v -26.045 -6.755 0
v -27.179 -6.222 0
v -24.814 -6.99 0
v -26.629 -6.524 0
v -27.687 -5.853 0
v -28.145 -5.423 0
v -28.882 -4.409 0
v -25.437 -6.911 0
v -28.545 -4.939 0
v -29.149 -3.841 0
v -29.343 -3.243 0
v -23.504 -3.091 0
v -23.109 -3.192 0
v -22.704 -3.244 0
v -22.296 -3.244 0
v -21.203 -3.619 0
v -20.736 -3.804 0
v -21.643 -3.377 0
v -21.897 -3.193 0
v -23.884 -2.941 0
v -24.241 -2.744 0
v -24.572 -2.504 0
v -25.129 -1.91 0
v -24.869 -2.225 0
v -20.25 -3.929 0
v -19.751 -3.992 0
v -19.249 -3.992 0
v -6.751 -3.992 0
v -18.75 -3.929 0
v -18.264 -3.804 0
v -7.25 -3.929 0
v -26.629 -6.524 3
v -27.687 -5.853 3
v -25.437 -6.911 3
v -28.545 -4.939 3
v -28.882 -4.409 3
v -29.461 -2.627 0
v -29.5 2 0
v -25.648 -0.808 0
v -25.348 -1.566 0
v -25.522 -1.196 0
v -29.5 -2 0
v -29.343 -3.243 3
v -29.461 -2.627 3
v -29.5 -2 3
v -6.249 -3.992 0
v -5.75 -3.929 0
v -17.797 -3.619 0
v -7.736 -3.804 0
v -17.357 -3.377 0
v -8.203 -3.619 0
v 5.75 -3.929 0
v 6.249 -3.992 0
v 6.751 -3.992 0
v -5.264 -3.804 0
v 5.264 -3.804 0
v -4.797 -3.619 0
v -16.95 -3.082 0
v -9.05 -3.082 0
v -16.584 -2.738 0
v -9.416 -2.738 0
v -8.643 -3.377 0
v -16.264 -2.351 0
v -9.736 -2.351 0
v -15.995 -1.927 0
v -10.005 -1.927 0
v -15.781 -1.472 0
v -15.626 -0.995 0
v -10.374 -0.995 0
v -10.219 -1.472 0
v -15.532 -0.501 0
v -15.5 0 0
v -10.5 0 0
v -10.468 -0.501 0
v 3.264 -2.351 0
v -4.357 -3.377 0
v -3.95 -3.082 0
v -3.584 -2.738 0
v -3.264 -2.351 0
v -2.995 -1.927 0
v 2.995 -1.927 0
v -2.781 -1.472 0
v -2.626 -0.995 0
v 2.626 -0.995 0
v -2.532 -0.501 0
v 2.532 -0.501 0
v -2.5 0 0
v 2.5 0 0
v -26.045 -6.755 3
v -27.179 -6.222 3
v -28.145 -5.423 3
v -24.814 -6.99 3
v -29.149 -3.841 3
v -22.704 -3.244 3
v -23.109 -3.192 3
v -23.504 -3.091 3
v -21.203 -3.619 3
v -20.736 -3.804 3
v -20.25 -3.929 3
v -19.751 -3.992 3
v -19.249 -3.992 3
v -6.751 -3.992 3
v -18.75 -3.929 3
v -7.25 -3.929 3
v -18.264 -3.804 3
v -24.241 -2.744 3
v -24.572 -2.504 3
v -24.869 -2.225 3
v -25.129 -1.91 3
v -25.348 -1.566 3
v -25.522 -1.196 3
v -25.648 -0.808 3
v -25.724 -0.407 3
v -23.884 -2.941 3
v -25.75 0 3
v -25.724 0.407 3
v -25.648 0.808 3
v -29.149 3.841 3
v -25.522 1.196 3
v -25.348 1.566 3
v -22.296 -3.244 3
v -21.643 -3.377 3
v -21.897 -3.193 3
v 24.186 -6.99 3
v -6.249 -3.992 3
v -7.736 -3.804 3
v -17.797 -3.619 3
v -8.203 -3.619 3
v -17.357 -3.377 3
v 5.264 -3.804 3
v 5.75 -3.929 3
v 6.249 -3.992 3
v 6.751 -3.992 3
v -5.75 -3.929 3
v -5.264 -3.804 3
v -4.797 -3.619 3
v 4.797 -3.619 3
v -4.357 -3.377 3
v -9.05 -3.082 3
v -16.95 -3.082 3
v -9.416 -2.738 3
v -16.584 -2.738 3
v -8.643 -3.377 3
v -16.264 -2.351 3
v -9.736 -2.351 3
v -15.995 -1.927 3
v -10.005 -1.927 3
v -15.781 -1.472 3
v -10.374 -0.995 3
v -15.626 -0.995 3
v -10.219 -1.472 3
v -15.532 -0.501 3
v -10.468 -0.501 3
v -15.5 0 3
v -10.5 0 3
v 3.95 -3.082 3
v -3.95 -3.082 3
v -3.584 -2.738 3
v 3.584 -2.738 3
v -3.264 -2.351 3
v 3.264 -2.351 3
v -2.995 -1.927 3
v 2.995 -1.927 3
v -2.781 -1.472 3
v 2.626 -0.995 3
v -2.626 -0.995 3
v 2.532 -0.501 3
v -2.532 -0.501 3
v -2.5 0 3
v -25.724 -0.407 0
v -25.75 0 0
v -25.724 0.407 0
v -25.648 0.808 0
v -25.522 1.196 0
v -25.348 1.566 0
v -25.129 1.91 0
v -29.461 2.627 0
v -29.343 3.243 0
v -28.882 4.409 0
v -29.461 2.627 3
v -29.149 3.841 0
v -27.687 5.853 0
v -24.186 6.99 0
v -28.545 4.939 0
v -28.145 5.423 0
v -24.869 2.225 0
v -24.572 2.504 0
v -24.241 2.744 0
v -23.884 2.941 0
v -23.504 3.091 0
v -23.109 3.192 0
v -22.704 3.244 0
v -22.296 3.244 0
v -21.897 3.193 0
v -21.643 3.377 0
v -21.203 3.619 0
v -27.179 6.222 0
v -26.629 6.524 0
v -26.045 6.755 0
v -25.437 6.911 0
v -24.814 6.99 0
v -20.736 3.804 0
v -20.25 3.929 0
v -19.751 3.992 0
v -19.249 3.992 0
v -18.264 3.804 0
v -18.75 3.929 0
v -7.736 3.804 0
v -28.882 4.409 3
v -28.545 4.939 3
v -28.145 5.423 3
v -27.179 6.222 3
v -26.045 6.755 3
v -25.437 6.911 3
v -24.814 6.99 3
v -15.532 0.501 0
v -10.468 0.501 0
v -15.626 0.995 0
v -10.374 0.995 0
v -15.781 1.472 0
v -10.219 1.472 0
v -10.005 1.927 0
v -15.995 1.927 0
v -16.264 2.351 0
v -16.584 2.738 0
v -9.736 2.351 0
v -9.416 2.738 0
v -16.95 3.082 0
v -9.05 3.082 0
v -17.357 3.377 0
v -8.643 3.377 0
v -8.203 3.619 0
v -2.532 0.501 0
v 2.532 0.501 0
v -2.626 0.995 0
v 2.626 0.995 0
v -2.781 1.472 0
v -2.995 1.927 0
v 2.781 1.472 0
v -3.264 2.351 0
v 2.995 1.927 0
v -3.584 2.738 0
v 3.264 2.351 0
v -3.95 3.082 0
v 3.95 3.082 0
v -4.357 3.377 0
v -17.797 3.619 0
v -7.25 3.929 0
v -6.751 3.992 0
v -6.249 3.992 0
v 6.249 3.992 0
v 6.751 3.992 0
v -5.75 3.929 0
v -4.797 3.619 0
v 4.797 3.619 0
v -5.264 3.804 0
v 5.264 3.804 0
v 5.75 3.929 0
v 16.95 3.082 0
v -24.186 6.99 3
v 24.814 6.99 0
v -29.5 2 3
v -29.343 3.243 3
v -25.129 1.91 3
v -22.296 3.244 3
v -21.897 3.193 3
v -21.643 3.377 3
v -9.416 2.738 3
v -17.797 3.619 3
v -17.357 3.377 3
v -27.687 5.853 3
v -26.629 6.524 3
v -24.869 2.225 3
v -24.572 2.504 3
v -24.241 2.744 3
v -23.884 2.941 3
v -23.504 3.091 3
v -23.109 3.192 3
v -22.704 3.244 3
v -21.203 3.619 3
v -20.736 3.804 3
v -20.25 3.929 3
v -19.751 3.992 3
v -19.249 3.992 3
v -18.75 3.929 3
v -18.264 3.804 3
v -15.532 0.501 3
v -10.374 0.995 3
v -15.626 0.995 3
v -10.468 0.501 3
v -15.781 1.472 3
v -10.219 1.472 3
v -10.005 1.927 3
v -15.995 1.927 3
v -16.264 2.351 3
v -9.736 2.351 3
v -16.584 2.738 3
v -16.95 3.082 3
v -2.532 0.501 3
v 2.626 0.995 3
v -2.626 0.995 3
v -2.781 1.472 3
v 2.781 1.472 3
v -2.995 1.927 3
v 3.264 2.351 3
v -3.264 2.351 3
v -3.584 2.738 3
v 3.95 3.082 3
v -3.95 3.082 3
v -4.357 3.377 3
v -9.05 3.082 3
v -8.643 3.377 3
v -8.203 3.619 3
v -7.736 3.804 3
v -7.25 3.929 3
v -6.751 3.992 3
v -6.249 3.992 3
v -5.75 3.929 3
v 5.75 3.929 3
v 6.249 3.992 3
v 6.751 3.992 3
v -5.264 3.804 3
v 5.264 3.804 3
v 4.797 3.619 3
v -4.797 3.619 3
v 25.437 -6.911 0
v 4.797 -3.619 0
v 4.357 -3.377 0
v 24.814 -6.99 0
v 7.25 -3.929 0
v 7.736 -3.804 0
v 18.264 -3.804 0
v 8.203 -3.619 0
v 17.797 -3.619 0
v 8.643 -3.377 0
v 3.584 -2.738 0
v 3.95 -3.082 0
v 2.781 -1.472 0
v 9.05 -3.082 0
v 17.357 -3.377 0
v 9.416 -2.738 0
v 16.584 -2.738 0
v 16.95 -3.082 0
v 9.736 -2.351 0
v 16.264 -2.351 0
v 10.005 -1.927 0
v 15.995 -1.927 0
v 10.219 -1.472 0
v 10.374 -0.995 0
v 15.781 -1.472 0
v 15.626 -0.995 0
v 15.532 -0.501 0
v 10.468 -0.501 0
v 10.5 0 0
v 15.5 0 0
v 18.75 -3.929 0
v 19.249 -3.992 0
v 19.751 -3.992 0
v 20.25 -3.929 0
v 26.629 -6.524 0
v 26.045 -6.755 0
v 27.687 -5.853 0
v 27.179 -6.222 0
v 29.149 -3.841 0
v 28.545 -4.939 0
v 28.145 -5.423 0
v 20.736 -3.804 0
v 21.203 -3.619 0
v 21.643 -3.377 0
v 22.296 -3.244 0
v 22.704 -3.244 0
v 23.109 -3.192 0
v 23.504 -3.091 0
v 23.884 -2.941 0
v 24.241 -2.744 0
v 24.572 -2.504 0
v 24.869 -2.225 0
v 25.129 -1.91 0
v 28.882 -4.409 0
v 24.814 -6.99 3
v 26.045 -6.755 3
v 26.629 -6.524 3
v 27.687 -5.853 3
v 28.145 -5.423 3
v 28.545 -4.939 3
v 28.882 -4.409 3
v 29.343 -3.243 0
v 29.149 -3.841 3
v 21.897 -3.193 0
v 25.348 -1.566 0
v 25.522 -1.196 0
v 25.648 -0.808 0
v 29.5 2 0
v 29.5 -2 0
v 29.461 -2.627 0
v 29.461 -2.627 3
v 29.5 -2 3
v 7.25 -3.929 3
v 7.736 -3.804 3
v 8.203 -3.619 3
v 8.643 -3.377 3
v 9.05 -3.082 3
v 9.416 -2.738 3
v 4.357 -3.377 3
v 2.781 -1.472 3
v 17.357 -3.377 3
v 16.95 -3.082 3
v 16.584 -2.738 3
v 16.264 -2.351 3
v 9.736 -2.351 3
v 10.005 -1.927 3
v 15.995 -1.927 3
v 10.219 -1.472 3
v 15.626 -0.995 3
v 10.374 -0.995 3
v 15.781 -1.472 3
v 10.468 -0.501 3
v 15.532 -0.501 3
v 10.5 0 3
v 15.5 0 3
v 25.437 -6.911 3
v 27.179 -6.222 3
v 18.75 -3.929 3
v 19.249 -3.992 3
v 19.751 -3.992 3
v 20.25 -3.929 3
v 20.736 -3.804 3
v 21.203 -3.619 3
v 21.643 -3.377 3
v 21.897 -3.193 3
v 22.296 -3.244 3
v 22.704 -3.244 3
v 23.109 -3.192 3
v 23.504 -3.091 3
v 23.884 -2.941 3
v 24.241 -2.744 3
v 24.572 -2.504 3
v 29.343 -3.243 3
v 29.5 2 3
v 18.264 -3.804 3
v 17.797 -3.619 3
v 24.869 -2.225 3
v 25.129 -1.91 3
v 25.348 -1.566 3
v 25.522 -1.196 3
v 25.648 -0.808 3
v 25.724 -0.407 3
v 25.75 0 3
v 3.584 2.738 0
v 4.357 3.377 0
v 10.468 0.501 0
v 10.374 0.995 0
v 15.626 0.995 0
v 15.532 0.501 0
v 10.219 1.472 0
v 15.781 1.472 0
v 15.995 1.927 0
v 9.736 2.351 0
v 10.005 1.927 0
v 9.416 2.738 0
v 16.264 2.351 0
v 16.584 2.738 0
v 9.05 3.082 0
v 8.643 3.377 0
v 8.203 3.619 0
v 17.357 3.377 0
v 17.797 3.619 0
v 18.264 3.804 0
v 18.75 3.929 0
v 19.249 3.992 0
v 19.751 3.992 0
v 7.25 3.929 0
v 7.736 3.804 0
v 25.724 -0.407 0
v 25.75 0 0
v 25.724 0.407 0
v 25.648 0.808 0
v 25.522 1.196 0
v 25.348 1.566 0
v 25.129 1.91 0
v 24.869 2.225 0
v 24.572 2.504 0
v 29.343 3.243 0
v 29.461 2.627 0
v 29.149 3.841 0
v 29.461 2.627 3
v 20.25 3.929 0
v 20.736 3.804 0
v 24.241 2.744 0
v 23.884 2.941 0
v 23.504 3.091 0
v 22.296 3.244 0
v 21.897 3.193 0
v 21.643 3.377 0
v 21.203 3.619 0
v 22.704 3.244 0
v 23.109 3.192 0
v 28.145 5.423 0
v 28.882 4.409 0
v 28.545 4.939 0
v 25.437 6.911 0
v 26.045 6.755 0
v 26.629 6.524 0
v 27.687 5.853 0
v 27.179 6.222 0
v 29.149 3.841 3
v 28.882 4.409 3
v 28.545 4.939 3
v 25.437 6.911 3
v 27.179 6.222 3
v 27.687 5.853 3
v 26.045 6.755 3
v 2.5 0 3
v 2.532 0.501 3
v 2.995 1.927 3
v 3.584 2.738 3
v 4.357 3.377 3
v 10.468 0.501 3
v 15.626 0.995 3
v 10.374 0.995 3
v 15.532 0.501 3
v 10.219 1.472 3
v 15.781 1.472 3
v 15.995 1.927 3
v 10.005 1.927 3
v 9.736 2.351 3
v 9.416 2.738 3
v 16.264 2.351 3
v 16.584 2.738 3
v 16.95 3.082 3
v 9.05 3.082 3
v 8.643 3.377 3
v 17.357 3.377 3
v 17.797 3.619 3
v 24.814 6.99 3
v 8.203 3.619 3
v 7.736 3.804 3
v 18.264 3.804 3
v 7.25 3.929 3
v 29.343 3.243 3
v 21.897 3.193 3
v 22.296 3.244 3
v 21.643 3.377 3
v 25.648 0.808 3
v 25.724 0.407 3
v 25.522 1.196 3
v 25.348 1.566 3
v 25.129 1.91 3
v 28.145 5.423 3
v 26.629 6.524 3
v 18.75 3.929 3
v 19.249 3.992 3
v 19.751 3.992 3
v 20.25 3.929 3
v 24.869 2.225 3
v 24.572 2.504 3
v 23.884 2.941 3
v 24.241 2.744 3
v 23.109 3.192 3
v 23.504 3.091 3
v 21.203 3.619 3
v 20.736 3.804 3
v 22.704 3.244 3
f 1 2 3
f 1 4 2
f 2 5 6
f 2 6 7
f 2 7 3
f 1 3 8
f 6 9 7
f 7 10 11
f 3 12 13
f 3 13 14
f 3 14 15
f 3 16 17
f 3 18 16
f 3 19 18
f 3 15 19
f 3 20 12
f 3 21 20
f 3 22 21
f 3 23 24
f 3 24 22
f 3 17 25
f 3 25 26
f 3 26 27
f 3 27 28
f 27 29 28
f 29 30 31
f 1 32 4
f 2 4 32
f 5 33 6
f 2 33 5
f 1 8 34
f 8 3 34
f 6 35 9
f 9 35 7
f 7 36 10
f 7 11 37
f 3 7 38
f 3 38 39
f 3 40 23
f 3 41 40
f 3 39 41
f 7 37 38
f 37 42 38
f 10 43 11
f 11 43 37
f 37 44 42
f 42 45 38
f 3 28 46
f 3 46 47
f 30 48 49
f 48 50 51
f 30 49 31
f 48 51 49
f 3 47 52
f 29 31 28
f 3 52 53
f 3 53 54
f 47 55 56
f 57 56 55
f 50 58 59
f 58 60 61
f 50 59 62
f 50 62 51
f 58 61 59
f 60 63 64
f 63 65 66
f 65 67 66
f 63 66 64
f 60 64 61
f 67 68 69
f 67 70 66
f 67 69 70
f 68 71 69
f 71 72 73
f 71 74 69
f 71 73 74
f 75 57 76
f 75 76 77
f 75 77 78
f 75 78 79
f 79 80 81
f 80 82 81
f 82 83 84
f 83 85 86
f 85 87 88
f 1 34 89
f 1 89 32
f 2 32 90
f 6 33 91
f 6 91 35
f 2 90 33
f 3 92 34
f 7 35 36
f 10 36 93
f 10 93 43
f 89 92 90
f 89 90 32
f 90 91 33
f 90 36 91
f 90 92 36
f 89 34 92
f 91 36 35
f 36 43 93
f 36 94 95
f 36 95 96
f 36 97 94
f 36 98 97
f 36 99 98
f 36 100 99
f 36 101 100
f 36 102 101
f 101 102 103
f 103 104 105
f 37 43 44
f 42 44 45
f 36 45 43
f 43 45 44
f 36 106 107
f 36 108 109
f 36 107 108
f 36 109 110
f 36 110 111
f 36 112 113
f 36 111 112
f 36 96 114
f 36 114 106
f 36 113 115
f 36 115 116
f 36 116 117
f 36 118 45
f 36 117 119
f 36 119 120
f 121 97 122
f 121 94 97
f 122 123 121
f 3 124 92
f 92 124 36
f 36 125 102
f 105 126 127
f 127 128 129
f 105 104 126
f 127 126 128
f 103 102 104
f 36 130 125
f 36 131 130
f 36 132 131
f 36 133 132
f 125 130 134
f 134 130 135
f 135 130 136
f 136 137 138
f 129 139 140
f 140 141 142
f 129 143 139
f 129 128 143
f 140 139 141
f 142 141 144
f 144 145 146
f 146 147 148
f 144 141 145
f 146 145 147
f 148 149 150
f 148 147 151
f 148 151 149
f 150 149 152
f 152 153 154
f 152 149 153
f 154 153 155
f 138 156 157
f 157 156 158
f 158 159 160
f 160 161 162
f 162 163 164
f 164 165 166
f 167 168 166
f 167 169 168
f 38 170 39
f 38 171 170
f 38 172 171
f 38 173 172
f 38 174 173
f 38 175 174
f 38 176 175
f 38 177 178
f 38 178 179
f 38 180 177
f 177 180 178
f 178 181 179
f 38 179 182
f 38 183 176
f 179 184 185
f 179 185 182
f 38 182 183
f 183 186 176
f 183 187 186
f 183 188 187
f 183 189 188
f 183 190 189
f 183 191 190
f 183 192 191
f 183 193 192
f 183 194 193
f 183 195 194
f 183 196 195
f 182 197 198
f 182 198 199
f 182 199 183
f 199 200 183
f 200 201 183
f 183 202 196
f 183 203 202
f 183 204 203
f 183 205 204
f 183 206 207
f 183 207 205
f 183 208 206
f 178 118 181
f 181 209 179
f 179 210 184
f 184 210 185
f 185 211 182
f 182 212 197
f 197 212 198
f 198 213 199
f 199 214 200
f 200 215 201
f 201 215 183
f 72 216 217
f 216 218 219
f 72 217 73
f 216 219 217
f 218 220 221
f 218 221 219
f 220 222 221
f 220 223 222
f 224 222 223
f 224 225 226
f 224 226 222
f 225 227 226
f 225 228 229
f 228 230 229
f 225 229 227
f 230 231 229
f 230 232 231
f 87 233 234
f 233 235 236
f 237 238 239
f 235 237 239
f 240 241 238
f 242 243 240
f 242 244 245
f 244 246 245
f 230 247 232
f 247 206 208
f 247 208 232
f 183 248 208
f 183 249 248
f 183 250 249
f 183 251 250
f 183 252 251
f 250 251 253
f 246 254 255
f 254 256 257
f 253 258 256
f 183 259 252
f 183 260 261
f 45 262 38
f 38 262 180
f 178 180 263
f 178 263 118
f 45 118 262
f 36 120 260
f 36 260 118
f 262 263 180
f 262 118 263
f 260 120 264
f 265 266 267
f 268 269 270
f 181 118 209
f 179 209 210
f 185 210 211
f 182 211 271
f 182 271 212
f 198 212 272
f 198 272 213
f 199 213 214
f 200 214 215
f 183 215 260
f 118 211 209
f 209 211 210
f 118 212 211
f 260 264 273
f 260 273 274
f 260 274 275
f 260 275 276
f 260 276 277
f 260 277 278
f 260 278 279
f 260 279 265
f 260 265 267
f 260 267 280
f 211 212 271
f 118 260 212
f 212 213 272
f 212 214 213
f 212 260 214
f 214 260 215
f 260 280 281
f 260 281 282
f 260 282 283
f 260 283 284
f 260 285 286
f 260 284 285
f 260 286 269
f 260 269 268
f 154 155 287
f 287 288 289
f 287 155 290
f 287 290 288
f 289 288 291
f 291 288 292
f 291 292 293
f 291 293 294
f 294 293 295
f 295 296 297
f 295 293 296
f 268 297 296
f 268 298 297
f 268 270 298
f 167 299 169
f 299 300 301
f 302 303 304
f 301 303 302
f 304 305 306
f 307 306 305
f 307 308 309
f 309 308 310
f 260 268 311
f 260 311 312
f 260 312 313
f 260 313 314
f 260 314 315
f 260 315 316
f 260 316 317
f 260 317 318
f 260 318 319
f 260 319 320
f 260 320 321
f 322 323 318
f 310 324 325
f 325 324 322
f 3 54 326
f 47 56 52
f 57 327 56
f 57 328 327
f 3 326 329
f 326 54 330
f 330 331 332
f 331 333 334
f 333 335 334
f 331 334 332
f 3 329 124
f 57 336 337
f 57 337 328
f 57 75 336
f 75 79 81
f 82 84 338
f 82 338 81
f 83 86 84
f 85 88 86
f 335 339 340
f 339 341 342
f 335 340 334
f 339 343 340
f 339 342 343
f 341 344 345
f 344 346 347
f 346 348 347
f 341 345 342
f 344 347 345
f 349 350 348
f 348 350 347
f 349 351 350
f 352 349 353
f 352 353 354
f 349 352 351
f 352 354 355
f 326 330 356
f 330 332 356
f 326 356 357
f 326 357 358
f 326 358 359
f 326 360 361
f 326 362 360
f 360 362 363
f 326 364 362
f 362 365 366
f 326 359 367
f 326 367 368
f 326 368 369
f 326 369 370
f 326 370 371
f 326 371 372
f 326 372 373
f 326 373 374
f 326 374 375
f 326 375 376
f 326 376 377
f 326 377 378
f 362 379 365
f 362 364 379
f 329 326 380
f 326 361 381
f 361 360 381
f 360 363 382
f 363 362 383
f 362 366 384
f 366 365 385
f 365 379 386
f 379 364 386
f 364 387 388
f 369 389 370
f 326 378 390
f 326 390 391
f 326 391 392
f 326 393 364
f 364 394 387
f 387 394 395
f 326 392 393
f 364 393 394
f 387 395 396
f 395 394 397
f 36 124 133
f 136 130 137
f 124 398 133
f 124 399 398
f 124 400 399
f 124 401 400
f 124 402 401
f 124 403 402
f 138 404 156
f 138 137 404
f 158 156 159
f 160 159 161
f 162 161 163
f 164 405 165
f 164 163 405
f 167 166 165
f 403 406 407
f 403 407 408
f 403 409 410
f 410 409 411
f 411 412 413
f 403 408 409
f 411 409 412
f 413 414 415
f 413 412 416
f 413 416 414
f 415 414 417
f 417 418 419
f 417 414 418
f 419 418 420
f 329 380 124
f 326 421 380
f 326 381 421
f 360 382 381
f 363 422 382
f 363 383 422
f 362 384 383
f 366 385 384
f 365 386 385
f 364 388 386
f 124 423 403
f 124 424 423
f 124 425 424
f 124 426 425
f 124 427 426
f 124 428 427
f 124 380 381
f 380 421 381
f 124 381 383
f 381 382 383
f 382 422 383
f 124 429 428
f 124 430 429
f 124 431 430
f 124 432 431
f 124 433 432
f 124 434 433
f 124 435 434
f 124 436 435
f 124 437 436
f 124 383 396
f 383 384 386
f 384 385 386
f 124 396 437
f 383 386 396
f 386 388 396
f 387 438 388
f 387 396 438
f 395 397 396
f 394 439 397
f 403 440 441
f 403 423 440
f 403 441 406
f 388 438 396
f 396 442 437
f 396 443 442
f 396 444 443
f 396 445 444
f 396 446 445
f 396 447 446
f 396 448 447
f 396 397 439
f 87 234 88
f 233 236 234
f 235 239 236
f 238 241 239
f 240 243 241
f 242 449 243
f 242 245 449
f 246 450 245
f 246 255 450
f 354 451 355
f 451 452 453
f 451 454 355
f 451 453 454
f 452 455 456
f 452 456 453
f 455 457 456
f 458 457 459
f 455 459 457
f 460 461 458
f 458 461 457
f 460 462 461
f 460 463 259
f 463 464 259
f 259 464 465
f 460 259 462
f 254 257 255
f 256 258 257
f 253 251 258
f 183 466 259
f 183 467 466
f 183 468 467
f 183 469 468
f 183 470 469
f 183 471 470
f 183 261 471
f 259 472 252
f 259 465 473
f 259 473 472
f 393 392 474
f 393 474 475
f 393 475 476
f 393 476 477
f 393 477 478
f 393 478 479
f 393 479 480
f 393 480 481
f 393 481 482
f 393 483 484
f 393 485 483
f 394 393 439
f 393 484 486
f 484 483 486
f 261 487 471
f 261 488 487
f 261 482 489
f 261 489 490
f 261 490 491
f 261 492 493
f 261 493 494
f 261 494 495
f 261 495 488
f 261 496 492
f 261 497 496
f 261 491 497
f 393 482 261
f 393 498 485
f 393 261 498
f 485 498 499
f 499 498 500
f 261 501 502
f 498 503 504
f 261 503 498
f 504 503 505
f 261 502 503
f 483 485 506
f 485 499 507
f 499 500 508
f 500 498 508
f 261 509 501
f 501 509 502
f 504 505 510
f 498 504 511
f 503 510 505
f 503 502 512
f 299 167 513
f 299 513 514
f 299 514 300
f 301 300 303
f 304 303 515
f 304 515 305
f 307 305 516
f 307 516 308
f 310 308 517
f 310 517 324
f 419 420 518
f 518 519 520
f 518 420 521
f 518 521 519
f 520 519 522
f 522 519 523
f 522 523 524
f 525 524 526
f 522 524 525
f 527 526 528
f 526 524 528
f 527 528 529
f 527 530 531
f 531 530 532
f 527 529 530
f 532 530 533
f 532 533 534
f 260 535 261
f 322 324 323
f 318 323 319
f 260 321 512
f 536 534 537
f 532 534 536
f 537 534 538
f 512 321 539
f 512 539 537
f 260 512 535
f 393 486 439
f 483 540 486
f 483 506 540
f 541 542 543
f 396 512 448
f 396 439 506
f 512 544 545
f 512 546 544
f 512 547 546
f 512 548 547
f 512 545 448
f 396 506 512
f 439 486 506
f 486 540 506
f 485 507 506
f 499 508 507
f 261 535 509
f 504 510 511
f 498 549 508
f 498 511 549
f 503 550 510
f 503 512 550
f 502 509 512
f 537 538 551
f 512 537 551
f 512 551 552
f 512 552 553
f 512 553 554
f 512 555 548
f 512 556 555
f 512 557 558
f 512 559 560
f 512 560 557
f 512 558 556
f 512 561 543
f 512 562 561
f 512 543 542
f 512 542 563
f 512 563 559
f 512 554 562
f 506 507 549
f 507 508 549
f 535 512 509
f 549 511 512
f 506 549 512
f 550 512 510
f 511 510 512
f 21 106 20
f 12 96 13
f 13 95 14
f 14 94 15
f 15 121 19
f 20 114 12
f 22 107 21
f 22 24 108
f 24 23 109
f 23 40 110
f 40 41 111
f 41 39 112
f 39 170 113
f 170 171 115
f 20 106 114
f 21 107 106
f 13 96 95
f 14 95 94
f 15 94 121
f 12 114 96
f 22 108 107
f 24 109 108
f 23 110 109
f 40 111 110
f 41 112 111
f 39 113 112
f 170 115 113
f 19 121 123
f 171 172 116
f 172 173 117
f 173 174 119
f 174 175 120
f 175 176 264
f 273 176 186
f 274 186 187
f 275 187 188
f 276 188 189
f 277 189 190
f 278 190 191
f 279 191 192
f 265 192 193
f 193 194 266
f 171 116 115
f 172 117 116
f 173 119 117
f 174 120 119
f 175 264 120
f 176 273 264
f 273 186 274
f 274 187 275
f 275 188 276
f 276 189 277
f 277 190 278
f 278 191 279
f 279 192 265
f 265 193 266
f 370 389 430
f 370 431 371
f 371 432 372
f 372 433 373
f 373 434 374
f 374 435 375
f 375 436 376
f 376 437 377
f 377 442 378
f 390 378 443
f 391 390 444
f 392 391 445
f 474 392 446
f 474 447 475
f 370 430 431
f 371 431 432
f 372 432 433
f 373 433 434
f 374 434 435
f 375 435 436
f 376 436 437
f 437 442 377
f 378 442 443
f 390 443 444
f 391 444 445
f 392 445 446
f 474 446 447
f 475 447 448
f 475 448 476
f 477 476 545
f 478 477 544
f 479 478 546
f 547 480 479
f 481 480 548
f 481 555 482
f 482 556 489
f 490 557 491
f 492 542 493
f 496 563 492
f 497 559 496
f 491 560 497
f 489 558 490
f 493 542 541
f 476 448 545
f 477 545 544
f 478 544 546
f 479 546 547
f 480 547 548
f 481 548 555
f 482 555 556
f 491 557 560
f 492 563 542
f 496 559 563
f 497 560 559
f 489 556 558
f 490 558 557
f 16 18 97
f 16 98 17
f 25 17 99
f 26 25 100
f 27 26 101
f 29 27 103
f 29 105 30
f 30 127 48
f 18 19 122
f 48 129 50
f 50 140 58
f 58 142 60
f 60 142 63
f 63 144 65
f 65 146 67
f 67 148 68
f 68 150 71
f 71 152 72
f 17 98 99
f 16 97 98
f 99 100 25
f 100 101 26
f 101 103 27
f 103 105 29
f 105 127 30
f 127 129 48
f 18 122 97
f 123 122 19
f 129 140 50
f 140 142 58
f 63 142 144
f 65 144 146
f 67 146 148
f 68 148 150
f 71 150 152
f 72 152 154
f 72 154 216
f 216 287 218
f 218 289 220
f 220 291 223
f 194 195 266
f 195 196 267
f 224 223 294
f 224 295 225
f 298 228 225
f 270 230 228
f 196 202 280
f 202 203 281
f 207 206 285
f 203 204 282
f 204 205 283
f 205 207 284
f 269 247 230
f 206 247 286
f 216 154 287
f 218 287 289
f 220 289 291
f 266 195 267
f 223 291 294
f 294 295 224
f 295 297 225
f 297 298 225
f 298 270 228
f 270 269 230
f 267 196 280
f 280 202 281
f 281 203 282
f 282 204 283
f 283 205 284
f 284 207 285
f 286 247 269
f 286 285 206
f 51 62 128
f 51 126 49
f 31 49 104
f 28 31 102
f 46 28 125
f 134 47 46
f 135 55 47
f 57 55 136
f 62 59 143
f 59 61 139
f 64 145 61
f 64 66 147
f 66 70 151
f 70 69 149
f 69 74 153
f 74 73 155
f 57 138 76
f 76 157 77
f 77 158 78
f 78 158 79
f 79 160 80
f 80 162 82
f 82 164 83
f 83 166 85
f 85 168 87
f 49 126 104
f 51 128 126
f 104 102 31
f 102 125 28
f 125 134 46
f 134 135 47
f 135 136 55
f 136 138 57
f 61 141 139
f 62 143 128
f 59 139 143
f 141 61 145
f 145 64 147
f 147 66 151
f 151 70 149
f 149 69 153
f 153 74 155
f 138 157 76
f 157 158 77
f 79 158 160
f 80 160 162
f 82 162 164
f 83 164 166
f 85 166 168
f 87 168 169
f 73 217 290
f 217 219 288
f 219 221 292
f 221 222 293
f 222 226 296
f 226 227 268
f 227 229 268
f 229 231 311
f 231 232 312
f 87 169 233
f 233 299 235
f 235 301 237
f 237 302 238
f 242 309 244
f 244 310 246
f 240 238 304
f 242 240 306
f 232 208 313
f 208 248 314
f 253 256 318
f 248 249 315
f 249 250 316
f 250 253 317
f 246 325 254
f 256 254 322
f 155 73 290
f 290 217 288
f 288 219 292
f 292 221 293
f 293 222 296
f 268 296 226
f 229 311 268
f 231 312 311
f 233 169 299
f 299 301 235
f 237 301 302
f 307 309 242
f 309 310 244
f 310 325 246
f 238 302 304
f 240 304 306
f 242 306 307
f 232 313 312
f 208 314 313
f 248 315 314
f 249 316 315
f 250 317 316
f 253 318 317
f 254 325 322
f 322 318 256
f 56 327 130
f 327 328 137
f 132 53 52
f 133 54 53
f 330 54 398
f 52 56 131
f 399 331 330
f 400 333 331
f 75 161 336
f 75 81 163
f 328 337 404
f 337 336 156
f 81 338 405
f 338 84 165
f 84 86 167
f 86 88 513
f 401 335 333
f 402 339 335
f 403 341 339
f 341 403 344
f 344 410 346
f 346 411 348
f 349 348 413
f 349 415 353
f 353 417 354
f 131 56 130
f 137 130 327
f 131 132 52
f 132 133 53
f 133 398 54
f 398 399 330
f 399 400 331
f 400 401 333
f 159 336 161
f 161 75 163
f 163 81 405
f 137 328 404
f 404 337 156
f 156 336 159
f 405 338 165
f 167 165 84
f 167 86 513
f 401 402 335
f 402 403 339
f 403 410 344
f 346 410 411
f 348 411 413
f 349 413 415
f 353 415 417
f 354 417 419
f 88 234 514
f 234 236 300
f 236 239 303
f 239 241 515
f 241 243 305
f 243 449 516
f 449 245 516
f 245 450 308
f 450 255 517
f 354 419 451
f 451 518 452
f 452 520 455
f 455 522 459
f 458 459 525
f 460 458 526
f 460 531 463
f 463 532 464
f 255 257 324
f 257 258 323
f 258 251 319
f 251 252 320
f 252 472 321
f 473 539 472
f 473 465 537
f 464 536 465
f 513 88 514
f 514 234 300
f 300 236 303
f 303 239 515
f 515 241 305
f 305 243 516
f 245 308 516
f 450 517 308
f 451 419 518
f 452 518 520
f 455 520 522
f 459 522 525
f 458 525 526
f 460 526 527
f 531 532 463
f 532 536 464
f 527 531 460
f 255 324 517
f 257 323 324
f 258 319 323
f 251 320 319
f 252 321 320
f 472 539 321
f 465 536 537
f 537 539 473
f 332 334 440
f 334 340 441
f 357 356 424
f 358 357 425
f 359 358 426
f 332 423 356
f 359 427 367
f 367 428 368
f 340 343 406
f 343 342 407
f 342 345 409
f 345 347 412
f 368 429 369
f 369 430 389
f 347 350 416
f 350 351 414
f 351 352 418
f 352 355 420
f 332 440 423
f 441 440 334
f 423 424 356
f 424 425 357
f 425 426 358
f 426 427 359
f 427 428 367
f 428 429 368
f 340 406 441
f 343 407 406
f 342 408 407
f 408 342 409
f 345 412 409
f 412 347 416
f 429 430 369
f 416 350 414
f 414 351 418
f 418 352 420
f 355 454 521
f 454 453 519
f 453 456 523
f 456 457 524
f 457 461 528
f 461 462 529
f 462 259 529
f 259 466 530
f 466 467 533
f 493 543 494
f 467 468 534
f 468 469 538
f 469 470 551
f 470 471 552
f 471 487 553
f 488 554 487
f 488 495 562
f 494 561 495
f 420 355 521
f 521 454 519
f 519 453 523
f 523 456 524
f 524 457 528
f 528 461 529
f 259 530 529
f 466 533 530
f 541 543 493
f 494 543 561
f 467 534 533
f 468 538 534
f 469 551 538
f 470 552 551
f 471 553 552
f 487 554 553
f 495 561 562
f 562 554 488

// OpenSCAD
$fn = 50;

difference() {
	union() {
		hull() {
			translate(v = [-24.5, 2.0, 0]) {
				cylinder(h = 3, r = 5);
			}
			translate(v = [24.5, 2.0, 0]) {
				cylinder(h = 3, r = 5);
			}
			translate(v = [-24.5, -2.0, 0]) {
				cylinder(h = 3, r = 5);
			}
			translate(v = [24.5, -2.0, 0]) {
				cylinder(h = 3, r = 5);
			}
		}
	}
	union() {
		translate(v = [-22.5, 0.0, -100.0]) {
			cylinder(h = 200, r = 3.25);
		}
		translate(v = [22.5, 0.0, -100.0]) {
			cylinder(h = 200, r = 3.25);
		}
		translate(v = [-22.5, 0.0, -100.0]) {
			cylinder(h = 200, r = 1.8);
		}
		translate(v = [22.5, 0.0, -100.0]) {
			cylinder(h = 200, r = 1.8);
		}
		translate(v = [-19.5, 0, 0.0]) {
			cylinder(h = 3, r = 4.0);
		}
		translate(v = [-6.5, 0, 0.0]) {
			cylinder(h = 3, r = 4.0);
		}
		translate(v = [6.5, 0, 0.0]) {
			cylinder(h = 3, r = 4.0);
		}
		translate(v = [19.5, 0, 0.0]) {
			cylinder(h = 3, r = 4.0);
		}
	}
}
